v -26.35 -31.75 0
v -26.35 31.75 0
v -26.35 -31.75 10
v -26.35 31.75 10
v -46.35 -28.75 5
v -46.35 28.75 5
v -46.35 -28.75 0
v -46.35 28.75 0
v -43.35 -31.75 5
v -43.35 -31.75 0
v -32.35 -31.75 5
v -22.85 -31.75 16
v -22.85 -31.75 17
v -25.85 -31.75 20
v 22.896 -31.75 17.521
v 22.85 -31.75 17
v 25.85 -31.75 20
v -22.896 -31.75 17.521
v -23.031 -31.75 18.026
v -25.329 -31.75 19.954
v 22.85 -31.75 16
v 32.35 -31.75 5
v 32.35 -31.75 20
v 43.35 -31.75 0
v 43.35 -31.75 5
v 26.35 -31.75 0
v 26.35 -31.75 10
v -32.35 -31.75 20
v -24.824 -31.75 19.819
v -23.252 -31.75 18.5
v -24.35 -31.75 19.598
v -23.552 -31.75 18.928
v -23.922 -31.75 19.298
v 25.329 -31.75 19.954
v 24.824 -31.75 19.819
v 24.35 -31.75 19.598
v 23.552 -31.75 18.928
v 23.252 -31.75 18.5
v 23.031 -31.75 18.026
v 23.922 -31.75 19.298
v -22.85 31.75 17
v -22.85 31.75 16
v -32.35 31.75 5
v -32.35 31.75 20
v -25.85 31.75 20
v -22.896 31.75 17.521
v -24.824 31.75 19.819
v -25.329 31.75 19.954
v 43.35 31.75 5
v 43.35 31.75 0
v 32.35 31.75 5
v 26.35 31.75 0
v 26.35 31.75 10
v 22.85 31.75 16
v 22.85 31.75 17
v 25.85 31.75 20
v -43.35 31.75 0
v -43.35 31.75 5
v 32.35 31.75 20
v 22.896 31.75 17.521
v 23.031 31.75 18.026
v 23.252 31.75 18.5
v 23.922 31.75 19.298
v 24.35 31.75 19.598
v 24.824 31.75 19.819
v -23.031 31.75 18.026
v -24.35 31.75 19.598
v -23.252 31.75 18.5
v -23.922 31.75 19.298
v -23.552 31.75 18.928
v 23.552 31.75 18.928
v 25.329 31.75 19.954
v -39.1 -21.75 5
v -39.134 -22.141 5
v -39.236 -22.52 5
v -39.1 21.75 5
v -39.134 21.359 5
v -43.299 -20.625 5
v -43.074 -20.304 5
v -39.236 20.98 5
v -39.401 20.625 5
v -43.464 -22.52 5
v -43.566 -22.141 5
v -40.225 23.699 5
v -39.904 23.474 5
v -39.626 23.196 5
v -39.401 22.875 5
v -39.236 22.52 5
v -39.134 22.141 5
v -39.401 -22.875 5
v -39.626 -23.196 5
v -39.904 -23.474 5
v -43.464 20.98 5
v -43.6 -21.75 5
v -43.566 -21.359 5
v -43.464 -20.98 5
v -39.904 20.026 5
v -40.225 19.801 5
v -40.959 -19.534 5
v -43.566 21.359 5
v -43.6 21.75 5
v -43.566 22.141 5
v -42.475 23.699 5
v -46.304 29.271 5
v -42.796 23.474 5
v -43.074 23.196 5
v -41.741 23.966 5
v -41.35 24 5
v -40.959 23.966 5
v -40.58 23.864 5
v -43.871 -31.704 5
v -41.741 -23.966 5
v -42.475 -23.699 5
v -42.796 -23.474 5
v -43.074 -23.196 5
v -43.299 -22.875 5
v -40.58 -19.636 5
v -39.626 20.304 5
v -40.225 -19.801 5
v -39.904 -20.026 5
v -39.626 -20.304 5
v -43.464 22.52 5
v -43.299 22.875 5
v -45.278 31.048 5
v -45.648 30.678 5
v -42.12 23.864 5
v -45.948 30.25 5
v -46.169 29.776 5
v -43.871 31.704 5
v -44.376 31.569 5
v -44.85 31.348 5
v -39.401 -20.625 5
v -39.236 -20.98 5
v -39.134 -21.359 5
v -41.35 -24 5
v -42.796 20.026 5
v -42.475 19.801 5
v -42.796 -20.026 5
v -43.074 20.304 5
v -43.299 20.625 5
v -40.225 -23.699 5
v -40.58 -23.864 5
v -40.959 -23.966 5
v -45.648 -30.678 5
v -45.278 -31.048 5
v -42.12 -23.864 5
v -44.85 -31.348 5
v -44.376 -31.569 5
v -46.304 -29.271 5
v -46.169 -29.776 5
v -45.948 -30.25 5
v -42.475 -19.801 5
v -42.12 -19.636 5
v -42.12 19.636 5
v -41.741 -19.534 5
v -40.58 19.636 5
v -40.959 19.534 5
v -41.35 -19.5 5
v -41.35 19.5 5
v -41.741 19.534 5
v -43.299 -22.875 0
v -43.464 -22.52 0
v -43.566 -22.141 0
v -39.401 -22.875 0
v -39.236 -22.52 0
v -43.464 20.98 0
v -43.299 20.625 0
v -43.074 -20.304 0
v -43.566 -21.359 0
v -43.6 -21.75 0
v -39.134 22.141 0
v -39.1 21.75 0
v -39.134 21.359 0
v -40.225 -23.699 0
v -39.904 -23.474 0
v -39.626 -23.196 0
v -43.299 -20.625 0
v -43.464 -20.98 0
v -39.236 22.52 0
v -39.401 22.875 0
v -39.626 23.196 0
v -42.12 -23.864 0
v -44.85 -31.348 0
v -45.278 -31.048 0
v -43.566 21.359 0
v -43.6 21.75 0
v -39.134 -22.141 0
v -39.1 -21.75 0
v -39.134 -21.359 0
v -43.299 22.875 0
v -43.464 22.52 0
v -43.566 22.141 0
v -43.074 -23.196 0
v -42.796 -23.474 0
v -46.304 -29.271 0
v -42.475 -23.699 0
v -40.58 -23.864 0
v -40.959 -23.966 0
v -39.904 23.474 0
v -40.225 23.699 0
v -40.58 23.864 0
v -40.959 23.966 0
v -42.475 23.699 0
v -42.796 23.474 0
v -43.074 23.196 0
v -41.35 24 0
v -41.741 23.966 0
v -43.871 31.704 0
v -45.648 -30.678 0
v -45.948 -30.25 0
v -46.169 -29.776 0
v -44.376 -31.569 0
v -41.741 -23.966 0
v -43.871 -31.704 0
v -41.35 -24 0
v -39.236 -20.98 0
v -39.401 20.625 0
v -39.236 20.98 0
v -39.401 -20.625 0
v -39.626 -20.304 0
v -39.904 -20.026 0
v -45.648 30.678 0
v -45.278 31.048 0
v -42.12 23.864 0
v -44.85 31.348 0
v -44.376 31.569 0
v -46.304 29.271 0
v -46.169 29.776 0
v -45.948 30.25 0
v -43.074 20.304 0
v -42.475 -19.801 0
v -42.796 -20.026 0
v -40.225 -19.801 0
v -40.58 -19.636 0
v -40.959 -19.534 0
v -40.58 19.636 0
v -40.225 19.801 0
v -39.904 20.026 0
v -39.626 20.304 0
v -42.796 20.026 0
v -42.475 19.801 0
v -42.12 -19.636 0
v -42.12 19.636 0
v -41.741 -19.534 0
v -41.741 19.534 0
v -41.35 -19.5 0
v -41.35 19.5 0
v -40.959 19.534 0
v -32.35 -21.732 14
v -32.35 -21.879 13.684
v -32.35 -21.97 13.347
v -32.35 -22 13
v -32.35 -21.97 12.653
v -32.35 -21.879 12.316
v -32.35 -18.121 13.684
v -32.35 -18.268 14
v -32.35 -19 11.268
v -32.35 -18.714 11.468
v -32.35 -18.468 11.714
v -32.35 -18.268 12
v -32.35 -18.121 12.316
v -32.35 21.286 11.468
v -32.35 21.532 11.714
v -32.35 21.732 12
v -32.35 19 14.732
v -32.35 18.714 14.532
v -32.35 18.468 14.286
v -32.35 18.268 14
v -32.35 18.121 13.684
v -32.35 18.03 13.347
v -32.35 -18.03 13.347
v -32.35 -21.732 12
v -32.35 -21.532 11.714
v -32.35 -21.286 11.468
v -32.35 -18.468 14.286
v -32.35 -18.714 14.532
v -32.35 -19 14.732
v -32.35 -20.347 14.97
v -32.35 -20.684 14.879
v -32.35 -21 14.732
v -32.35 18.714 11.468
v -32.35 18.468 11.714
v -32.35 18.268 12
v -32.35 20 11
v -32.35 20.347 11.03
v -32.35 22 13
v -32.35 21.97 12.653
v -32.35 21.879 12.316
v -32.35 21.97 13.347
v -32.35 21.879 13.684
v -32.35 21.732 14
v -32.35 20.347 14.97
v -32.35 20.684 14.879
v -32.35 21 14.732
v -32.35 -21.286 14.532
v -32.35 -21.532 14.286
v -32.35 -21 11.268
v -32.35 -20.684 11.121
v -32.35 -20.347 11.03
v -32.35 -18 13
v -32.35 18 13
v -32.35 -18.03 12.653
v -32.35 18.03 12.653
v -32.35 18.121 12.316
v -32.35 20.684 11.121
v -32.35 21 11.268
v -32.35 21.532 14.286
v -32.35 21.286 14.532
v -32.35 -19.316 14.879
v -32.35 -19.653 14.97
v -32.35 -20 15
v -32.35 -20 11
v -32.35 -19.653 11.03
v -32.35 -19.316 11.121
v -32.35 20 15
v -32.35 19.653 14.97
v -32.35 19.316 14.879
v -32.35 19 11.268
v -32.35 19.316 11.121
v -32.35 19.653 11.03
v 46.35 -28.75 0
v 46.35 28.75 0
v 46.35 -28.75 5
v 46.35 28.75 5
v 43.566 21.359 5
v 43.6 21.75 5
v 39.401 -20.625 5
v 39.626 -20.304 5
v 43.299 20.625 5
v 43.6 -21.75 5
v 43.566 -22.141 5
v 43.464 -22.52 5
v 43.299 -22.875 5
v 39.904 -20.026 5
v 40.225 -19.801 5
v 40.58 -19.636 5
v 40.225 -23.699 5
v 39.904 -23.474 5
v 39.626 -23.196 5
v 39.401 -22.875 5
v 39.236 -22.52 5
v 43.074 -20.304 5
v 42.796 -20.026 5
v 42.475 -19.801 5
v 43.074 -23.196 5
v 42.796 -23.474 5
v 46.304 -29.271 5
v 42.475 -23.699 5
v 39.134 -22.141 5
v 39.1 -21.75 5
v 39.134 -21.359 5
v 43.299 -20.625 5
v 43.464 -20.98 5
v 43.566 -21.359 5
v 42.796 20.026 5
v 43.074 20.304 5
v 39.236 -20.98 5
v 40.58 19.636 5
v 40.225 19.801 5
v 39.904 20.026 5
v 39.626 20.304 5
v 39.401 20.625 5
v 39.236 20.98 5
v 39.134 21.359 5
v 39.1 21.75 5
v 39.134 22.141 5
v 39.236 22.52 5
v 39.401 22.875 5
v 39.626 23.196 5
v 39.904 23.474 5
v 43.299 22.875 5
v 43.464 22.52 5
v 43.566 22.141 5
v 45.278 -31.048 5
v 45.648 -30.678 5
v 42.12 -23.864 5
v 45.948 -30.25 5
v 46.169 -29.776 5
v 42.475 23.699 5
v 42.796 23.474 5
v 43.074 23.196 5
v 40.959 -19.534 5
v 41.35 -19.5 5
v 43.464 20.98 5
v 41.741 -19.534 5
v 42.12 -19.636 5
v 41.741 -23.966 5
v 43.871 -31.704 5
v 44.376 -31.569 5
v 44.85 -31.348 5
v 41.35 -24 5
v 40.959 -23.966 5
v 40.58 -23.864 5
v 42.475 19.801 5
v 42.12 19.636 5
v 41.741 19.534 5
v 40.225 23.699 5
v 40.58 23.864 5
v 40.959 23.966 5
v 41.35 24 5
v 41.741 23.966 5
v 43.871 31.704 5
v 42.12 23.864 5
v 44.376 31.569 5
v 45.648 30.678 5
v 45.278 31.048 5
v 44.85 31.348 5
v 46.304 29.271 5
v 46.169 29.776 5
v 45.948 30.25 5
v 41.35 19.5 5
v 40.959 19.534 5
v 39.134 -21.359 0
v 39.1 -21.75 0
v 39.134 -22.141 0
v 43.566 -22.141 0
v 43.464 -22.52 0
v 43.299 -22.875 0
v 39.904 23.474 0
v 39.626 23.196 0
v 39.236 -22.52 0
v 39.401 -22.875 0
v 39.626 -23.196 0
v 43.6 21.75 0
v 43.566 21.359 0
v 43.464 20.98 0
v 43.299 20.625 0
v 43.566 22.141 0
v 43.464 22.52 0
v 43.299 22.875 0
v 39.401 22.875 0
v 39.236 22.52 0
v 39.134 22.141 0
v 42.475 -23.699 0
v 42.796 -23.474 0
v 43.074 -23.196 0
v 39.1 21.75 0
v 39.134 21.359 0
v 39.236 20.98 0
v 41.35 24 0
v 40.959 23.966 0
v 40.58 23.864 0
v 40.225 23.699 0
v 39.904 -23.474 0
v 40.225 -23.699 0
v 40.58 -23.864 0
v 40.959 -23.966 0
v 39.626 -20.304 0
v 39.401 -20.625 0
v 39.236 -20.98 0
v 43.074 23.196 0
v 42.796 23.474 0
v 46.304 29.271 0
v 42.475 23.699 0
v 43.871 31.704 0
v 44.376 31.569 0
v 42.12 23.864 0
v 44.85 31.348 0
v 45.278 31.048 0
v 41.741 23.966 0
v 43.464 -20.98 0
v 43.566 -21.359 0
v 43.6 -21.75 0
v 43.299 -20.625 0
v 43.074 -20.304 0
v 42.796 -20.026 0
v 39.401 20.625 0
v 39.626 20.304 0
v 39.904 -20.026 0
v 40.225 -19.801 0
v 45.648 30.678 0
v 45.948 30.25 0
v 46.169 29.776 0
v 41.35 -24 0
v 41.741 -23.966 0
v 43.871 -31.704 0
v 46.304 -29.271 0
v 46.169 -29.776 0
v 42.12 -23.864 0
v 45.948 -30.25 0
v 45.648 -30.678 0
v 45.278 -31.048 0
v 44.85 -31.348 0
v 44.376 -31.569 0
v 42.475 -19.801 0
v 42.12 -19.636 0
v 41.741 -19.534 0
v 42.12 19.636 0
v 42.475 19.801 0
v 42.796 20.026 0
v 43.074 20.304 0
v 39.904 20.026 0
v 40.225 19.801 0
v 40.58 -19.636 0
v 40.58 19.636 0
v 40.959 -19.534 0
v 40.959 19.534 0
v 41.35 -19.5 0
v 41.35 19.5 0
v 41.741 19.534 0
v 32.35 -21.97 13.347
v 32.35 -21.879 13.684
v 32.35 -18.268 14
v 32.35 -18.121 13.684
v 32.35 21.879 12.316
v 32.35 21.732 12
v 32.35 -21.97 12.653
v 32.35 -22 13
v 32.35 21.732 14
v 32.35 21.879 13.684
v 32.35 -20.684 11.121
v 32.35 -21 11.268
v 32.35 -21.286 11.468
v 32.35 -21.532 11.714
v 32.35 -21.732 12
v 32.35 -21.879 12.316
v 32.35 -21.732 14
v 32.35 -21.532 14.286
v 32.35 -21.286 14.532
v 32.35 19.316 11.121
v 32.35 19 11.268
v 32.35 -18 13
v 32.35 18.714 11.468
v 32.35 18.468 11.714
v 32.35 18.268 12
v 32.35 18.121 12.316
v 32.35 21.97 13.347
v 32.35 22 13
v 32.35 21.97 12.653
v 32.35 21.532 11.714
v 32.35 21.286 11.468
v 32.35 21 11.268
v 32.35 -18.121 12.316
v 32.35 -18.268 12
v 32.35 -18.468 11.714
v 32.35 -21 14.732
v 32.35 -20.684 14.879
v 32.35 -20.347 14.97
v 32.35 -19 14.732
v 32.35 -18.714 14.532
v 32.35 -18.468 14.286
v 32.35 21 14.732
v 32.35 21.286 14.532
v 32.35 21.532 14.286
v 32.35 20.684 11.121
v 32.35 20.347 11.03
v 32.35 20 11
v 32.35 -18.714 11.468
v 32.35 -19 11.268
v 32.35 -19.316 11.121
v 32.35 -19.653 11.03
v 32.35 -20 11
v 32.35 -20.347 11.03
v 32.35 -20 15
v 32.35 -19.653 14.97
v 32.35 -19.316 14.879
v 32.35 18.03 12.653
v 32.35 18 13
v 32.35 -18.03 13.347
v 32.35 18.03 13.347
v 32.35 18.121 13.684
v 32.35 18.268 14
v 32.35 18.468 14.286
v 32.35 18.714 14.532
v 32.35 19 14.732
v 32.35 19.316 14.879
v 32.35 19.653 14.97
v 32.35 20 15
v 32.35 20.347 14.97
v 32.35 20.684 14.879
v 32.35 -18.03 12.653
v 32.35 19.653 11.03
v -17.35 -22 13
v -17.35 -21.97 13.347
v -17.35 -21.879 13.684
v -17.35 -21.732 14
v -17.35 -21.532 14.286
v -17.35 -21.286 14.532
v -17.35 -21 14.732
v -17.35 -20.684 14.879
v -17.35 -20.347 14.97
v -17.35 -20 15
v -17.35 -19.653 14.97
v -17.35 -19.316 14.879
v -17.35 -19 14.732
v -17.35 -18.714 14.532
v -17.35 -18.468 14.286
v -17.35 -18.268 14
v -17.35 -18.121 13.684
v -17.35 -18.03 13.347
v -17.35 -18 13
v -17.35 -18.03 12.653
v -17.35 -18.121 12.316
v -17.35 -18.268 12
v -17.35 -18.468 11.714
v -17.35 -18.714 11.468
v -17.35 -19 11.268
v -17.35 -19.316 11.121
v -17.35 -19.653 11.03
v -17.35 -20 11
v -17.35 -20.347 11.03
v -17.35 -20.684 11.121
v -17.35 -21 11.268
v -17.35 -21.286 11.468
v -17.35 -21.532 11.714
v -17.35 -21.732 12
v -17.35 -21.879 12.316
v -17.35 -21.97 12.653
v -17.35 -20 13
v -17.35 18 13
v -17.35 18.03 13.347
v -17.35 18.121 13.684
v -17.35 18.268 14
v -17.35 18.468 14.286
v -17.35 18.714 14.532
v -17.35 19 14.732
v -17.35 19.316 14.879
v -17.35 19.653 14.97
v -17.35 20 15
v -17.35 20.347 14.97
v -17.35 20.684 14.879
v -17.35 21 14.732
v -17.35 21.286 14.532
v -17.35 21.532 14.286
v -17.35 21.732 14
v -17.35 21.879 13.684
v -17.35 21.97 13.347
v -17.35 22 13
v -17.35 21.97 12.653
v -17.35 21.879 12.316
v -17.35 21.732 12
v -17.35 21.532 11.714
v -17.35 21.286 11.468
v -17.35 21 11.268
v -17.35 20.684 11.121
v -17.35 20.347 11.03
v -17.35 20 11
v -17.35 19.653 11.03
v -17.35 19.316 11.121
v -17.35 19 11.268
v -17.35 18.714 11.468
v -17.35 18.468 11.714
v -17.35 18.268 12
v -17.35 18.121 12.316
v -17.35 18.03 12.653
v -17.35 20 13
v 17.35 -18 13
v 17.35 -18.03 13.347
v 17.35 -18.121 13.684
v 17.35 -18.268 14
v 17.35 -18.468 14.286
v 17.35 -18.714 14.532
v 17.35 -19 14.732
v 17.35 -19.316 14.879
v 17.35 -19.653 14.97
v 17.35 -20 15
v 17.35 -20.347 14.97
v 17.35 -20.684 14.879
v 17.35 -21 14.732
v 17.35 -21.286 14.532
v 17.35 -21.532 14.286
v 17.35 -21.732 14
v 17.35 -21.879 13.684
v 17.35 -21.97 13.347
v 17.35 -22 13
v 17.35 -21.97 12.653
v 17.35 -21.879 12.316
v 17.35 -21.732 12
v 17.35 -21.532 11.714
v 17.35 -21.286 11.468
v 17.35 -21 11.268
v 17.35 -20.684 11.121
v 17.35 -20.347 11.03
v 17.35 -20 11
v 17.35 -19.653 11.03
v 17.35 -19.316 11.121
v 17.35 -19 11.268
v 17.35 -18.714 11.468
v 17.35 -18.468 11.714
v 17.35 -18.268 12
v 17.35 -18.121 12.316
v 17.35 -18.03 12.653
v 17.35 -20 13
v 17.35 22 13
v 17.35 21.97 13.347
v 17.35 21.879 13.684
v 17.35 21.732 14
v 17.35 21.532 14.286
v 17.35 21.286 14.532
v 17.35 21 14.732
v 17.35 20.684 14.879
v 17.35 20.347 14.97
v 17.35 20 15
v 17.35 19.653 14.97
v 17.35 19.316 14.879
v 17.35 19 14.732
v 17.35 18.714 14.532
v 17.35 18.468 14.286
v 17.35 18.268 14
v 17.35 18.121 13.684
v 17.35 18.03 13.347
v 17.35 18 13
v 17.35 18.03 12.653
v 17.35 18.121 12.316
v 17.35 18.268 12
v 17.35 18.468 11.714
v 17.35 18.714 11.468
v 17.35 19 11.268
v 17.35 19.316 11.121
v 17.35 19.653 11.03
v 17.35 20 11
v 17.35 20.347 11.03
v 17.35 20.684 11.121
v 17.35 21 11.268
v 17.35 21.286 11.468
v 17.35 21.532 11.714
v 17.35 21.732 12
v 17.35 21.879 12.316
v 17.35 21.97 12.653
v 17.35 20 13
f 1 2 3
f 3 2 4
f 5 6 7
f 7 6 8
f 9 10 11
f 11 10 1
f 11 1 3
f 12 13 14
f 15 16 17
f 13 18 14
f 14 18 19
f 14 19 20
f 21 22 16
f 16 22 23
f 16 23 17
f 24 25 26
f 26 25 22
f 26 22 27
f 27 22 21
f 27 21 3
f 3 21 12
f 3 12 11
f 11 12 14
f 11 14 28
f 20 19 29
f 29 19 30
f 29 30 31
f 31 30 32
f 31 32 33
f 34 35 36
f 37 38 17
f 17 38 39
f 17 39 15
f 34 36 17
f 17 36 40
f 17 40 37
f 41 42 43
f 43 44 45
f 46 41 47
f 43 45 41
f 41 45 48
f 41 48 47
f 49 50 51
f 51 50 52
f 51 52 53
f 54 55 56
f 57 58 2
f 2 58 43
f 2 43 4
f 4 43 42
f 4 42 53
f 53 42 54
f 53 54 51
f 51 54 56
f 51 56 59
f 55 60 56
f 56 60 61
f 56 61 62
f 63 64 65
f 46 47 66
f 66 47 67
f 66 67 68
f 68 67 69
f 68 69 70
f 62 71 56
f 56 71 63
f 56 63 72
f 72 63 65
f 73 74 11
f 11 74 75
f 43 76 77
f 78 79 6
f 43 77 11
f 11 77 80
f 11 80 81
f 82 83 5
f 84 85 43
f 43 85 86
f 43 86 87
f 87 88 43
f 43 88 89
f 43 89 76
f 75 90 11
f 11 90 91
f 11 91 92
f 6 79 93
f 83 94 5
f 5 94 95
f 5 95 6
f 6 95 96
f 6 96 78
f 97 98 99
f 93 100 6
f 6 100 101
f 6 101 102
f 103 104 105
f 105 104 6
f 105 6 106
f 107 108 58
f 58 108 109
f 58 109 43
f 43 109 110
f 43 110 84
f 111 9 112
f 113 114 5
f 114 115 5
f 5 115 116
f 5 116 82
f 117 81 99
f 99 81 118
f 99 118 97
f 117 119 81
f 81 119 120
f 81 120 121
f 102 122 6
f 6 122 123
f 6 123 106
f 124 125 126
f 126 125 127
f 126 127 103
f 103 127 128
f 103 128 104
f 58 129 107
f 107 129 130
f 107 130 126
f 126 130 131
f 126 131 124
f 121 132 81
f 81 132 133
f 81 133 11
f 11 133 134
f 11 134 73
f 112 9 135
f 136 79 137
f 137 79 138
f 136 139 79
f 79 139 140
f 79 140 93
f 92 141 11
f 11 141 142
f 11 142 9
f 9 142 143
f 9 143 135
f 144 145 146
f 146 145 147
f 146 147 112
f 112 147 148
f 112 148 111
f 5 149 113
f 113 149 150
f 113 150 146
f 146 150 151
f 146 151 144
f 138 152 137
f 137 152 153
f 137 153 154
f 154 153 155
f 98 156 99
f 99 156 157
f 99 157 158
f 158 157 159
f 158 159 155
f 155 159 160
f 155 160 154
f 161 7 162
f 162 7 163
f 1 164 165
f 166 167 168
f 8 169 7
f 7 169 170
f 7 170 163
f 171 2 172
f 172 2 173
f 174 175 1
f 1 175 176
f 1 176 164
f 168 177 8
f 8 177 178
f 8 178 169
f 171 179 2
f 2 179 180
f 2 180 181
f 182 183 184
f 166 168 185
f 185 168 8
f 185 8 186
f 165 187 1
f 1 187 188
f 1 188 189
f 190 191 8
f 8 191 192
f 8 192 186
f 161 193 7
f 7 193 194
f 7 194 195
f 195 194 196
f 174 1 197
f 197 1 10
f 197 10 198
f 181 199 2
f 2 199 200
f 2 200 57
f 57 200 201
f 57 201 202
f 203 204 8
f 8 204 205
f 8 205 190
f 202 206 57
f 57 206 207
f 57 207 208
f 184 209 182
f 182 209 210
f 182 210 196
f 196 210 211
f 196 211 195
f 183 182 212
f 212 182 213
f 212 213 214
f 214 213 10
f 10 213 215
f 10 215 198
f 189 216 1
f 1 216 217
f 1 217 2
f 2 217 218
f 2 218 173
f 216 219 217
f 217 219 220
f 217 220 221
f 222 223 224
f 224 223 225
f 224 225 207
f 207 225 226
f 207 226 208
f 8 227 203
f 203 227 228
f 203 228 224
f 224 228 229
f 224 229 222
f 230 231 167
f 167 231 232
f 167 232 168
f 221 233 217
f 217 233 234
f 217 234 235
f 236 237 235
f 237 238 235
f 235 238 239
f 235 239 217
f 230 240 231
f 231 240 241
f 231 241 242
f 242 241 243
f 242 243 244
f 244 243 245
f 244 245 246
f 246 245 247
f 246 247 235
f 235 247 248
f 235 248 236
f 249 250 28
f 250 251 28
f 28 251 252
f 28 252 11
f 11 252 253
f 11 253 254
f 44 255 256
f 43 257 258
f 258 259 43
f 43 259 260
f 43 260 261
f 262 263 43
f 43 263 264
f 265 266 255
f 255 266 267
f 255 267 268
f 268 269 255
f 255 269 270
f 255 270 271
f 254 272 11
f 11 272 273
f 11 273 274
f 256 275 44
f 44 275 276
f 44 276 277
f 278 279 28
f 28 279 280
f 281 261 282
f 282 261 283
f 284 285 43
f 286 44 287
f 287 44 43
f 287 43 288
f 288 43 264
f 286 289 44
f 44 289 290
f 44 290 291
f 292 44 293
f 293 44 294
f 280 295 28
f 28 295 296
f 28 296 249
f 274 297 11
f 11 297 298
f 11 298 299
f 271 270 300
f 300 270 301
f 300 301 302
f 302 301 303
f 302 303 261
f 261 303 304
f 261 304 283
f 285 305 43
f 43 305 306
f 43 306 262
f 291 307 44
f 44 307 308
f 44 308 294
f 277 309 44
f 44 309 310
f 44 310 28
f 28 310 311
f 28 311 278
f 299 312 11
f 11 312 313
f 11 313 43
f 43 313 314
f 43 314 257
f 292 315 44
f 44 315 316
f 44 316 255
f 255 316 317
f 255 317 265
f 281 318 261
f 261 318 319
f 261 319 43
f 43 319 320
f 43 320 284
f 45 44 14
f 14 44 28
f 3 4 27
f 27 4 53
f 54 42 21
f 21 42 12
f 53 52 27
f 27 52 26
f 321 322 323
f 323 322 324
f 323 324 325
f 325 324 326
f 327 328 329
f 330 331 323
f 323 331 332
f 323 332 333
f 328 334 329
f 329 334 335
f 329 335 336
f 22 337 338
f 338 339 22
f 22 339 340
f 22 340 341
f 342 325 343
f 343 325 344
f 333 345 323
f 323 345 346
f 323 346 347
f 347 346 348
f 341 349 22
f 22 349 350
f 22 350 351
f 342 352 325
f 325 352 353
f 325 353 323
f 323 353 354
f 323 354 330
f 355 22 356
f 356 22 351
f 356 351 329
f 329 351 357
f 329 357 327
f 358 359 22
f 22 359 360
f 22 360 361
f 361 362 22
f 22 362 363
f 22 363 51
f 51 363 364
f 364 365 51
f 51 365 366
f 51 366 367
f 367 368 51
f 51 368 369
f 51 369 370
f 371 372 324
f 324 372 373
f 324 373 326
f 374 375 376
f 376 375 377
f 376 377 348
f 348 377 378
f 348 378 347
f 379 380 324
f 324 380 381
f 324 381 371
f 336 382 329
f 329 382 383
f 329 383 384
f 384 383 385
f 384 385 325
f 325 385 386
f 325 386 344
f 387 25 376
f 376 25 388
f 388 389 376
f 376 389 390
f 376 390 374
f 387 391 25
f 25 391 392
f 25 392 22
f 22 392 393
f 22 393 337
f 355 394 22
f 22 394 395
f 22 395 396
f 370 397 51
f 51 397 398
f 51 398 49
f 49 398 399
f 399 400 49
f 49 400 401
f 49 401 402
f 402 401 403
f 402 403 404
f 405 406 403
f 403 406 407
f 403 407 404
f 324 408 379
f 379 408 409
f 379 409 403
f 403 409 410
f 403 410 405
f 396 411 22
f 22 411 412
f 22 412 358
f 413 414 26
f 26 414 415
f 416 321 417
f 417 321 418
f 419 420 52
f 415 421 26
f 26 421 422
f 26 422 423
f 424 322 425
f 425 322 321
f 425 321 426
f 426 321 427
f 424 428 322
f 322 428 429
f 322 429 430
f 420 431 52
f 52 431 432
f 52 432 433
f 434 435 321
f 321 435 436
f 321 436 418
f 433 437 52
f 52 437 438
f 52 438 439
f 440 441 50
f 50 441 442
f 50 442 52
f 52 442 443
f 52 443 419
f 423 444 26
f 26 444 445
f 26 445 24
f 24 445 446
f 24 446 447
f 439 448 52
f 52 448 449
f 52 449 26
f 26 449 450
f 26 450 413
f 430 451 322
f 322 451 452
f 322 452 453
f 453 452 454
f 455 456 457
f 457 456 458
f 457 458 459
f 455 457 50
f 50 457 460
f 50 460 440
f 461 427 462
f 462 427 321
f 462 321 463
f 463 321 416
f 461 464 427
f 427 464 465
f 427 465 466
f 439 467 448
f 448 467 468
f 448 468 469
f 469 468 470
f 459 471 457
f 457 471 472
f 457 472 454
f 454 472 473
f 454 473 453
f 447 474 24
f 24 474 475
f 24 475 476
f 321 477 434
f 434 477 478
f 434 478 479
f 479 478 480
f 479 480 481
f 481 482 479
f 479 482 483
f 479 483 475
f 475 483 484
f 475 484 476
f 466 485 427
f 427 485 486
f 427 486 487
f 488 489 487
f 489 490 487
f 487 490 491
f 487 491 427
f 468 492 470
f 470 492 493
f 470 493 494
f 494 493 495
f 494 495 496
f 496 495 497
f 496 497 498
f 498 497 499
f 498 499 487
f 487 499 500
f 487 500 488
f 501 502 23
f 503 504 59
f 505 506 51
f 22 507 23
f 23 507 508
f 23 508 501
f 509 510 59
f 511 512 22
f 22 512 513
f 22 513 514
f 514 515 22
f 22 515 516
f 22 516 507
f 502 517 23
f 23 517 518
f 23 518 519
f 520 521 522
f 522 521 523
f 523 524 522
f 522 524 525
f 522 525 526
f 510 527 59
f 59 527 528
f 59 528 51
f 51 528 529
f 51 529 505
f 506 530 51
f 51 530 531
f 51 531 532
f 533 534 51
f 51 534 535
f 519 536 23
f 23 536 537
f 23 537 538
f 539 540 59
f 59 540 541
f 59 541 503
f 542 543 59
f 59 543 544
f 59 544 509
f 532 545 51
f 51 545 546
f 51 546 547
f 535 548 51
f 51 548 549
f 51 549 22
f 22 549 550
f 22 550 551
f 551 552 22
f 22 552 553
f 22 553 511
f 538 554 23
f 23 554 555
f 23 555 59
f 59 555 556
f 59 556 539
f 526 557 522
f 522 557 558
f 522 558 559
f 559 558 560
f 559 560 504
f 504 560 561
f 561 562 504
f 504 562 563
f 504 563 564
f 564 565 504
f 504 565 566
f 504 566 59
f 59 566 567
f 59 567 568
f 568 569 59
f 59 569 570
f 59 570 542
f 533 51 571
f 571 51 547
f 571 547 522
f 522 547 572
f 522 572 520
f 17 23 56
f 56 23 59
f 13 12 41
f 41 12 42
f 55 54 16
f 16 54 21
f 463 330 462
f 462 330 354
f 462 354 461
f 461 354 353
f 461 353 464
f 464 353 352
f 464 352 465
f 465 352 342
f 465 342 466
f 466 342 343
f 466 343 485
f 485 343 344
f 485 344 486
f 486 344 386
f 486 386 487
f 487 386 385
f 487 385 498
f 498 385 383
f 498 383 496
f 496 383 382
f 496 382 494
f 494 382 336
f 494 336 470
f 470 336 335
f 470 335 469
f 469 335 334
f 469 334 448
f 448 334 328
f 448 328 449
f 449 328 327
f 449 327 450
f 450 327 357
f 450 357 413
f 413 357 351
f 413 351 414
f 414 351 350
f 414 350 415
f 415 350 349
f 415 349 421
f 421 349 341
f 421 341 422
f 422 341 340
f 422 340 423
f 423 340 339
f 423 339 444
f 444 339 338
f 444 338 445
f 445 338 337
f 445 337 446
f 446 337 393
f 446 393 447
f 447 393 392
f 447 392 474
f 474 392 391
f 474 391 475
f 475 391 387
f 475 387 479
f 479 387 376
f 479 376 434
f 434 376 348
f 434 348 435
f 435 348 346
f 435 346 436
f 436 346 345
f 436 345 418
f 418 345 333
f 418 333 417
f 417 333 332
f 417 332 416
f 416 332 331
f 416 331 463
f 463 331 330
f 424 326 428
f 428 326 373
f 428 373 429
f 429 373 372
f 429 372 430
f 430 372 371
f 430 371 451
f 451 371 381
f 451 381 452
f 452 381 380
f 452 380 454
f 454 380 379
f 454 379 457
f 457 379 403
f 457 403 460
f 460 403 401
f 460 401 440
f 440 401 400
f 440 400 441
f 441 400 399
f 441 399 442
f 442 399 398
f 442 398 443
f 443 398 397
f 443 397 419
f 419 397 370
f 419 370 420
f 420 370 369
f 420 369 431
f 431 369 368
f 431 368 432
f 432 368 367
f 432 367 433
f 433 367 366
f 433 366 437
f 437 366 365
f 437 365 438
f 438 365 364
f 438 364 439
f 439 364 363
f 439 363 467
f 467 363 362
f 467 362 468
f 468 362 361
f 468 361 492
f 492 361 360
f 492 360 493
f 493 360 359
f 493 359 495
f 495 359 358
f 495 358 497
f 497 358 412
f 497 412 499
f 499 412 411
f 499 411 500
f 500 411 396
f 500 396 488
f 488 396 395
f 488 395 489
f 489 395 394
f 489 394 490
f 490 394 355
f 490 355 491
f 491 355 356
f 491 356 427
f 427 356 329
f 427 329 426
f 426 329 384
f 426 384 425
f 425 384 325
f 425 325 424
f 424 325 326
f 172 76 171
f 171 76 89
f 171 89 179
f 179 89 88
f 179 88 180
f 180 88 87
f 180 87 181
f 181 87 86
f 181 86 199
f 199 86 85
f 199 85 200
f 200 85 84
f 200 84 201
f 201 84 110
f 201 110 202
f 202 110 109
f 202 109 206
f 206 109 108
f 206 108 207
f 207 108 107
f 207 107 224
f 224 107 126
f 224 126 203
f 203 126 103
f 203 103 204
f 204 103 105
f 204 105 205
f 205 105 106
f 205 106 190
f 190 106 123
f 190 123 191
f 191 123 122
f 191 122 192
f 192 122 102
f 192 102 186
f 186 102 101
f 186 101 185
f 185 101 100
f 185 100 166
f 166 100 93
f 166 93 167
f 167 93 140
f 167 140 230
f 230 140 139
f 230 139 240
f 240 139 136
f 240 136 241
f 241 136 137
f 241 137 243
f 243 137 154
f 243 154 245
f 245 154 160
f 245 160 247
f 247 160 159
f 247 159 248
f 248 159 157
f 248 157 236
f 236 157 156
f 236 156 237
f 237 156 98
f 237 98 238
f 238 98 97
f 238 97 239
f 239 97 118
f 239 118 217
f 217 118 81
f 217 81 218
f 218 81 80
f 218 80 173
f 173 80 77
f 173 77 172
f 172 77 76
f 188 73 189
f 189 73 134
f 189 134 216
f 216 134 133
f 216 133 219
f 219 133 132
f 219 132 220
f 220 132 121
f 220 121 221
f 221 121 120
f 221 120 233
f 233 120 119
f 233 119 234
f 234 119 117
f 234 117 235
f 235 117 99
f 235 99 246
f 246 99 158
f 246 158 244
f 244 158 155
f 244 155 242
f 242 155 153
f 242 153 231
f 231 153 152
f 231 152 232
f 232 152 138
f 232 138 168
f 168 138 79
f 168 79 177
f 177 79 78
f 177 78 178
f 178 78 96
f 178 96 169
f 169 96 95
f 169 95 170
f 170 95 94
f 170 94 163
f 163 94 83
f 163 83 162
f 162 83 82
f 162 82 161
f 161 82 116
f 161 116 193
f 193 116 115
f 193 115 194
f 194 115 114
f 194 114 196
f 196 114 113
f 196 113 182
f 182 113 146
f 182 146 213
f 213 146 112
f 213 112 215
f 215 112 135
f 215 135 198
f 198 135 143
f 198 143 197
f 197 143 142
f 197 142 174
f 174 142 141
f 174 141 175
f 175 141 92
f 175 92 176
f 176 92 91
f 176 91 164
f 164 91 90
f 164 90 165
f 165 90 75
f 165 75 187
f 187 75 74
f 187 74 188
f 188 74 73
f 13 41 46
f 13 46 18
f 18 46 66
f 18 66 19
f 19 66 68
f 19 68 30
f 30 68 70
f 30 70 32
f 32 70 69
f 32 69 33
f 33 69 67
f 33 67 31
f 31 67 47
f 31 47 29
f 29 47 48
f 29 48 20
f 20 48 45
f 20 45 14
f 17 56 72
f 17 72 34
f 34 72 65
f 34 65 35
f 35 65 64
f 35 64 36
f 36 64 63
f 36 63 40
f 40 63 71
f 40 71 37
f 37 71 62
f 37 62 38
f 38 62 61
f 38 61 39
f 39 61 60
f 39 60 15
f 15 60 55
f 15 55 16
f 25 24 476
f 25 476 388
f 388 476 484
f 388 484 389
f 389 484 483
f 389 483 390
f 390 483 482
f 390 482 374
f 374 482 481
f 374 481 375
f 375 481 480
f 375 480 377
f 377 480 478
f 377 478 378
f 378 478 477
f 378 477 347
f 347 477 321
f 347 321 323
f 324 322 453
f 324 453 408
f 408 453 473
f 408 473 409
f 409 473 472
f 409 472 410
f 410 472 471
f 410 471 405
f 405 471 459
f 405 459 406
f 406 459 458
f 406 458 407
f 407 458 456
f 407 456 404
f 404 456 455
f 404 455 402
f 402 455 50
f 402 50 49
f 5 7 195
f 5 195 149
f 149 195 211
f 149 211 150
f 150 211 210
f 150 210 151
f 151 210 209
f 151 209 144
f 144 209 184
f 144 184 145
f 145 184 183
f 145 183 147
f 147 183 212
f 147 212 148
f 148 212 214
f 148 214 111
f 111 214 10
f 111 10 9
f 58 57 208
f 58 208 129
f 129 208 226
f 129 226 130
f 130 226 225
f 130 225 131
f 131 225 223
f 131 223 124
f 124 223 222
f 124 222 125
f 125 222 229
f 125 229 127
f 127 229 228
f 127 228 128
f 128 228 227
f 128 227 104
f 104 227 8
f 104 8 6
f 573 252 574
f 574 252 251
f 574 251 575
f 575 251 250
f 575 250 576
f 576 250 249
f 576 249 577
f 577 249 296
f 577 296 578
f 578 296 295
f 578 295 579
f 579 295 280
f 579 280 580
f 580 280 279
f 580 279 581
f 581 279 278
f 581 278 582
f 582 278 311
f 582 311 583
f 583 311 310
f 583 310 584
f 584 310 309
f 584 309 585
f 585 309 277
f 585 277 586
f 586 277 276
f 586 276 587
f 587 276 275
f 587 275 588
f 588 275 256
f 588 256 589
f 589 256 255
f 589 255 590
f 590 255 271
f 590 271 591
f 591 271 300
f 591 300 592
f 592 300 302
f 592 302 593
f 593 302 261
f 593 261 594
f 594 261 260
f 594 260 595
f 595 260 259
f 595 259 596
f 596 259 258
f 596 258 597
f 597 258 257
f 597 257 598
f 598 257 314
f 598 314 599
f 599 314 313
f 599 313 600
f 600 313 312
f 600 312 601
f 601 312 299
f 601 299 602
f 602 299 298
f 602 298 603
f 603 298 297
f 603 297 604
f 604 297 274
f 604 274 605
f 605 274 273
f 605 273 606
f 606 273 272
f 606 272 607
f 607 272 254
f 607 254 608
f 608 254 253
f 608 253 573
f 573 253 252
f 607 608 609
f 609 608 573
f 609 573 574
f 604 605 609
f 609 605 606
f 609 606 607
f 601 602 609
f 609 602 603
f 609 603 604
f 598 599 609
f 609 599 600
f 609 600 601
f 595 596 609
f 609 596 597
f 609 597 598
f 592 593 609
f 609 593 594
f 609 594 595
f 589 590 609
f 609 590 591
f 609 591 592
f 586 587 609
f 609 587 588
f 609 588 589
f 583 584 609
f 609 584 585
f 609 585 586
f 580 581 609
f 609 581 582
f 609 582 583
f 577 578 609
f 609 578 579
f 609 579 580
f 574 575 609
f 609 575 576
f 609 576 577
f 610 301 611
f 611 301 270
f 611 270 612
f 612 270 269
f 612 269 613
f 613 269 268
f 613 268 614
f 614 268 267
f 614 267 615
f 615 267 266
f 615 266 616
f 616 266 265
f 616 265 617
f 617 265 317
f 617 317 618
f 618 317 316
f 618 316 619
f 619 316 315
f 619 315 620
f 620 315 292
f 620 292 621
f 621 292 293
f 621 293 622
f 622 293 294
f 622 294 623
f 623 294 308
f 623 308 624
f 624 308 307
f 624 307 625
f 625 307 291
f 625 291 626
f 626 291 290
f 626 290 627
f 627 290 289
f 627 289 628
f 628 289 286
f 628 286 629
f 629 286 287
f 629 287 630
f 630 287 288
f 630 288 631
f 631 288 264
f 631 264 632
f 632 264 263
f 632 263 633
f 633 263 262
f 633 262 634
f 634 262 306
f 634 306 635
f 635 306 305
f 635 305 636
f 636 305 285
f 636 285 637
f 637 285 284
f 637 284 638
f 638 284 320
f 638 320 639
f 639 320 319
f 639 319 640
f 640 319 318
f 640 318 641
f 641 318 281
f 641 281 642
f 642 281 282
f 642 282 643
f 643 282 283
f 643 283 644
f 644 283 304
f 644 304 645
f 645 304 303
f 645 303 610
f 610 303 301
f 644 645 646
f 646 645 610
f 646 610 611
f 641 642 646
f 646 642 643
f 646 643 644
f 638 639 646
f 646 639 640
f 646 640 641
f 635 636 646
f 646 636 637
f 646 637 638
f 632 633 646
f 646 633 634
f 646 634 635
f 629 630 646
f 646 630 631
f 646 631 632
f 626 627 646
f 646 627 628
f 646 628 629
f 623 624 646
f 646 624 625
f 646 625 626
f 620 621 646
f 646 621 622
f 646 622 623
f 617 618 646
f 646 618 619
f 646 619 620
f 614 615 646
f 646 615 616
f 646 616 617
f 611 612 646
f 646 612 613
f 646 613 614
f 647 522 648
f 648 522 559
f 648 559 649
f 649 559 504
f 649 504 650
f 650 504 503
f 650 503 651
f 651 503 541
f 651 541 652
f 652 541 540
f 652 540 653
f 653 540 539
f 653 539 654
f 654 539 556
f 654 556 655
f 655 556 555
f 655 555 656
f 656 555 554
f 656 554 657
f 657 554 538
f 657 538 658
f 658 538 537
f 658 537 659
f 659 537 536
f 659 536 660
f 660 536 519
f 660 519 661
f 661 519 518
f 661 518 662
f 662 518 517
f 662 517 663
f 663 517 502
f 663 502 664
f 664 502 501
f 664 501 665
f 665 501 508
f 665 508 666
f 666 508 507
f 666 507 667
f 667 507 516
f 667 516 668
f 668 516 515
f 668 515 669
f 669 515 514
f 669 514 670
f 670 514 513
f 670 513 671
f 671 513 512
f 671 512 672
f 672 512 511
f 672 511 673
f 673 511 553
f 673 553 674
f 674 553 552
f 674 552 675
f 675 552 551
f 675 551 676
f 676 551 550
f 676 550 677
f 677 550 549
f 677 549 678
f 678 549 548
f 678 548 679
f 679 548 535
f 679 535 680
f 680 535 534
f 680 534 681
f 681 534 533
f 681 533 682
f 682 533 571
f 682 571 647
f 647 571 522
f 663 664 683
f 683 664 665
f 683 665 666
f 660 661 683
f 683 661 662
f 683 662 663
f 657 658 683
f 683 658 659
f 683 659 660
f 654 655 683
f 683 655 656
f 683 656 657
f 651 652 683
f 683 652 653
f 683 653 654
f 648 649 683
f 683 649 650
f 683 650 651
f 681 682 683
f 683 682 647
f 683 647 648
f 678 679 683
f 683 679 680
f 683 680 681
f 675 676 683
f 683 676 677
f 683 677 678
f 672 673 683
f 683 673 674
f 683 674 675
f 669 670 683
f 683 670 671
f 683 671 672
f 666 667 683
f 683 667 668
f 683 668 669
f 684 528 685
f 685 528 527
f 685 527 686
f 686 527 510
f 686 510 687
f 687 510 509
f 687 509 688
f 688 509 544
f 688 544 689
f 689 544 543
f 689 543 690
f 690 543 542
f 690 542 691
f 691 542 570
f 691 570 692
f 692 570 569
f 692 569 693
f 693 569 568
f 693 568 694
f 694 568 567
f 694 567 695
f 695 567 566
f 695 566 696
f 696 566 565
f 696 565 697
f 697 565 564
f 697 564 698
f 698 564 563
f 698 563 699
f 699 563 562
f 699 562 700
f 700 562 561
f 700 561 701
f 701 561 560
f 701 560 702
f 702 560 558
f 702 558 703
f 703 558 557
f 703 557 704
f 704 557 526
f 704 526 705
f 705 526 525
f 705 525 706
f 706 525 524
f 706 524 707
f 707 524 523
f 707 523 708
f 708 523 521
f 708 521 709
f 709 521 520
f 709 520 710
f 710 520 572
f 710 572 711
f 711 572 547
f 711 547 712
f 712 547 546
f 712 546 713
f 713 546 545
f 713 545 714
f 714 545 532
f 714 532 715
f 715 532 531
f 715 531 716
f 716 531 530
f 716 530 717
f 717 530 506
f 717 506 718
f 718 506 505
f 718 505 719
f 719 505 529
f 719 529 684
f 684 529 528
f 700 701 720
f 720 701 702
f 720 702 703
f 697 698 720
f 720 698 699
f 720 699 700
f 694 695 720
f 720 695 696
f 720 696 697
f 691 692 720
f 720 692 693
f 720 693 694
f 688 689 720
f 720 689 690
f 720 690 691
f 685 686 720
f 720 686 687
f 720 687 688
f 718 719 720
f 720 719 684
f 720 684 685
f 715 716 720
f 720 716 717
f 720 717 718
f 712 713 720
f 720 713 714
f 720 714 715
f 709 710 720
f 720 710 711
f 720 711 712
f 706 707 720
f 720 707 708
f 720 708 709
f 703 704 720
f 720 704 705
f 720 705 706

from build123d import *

# Parameters (mm, degrees)
SKETCH1_W             = 20
SKETCH1_H             = 63.5
BOSS_EXTRUDE1_DEPTH   = 5
BOSS_EXTRUDE1_2_DEPTH = 5
SKETCH2_W             = 6
SKETCH2_H             = 63.5
BOSS_EXTRUDE2_DEPTH   = 15
BOSS_EXTRUDE3_REACH   = 74.7
SKETCH3_W             = 6
SKETCH3_H             = 63.5
SKETCH4_W             = 4
SKETCH4_H             = 63.5
BOSS_EXTRUDE4_DEPTH   = 3.5
SKETCH6_R             = 2.25
CUT_EXTRUDE2_DEPTH    = 6
FILLET1_R             = 3
SKETCH7_R             = 2
CUT_EXTRUDE6_DEPTH    = 15


with BuildPart() as part:
    # Sketch1 → Boss-Extrude1 (new body)
    with BuildSketch(Plane.XY):
        with Locations((-36.35, 0)):
            Rectangle(SKETCH1_W, SKETCH1_H)
    extrude(amount=BOSS_EXTRUDE1_DEPTH)



with BuildPart() as body_2:
    # Sketch1 → Boss-Extrude1 2 (new body)
    with BuildSketch(Plane.XY):
        with Locations((36.35, 0)):
            Rectangle(SKETCH1_W, SKETCH1_H)
    extrude(amount=BOSS_EXTRUDE1_2_DEPTH)


with BuildPart() as part_1:
    add(part.part)

    add(body_2.part)  # Boss-Extrude2 merges body 2
    # Sketch2 → Boss-Extrude2 (add)
    with BuildSketch(Plane.XY.offset(5)):
        with Locations((-29.35, 0)):
            Rectangle(SKETCH2_W, SKETCH2_H)
        with Locations((29.35, 0)):
            Rectangle(SKETCH2_W, SKETCH2_H)
    extrude(amount=BOSS_EXTRUDE2_DEPTH)

    # Sketch3 → Boss-Extrude3 (add, up to next)
    with BuildSketch(Plane(origin=(-26.35, 0, 0), x_dir=(0, 0, -1), z_dir=(1, 0, 0)), mode=Mode.PRIVATE) as boss_extrude3_sk1:
        with Locations((-13, 0)):
            Rectangle(SKETCH3_W, SKETCH3_H)
    boss_extrude3_tool1 = extrude(boss_extrude3_sk1.sketch, amount=BOSS_EXTRUDE3_REACH, mode=Mode.PRIVATE) - part_1.part
    add(boss_extrude3_tool1.solids().sort_by_distance((-26.35, 0, 13))[0])

    # Sketch4 → Boss-Extrude4 (add)
    with BuildSketch(Plane(origin=(-26.35, 0, 0), x_dir=(0, 0, -1), z_dir=(1, 0, 0))):
        with Locations((-18, 0)):
            Rectangle(SKETCH4_W, SKETCH4_H)
    boss_extrude4 = extrude(amount=BOSS_EXTRUDE4_DEPTH)

    # Mirror1: Boss-Extrude4 across plane
    add(boss_extrude4.mirror(Plane(origin=(0, 0, 0), x_dir=(0, 0, 1), z_dir=(1, 0, 0))))

    # Sketch6 → Cut-Extrude2 (cut, through all)
    with BuildSketch(Plane.XY.offset(5)):
        with Locations((-41.35, 21.75)):
            Circle(SKETCH6_R)
        with Locations((-41.35, -21.75)):
            Circle(SKETCH6_R)
        with Locations((41.35, -21.75)):
            Circle(SKETCH6_R)
        with Locations((41.35, 21.75)):
            Circle(SKETCH6_R)
    extrude(amount=-CUT_EXTRUDE2_DEPTH, mode=Mode.SUBTRACT)

    # Fillet1
    fillet1_edges = [part_1.edges().sort_by_distance(p)[0] for p in [
        (46.35, 31.75, 2.5),
        (46.35, -31.75, 2.5),
        (-22.85, 0, 20),
        (22.85, 0, 20),
        (-46.35, 31.75, 2.5),
        (-46.35, -31.75, 2.5),
    ]]
    fillet(fillet1_edges, radius=FILLET1_R)

    # Sketch7 → Cut-Extrude6 (cut)
    with BuildSketch(Plane.ZY.offset(32.35)):
        with Locations((13, 20)):
            Circle(SKETCH7_R)
        with Locations((13, -20)):
            Circle(SKETCH7_R)
    cut_extrude6 = extrude(amount=-CUT_EXTRUDE6_DEPTH, mode=Mode.SUBTRACT)

    # Mirror2: Cut-Extrude6 across plane
    add(cut_extrude6.mirror(Plane(origin=(0, 0, 0), x_dir=(0, 0, 1), z_dir=(1, 0, 0))), mode=Mode.SUBTRACT)


solid = part_1.part
